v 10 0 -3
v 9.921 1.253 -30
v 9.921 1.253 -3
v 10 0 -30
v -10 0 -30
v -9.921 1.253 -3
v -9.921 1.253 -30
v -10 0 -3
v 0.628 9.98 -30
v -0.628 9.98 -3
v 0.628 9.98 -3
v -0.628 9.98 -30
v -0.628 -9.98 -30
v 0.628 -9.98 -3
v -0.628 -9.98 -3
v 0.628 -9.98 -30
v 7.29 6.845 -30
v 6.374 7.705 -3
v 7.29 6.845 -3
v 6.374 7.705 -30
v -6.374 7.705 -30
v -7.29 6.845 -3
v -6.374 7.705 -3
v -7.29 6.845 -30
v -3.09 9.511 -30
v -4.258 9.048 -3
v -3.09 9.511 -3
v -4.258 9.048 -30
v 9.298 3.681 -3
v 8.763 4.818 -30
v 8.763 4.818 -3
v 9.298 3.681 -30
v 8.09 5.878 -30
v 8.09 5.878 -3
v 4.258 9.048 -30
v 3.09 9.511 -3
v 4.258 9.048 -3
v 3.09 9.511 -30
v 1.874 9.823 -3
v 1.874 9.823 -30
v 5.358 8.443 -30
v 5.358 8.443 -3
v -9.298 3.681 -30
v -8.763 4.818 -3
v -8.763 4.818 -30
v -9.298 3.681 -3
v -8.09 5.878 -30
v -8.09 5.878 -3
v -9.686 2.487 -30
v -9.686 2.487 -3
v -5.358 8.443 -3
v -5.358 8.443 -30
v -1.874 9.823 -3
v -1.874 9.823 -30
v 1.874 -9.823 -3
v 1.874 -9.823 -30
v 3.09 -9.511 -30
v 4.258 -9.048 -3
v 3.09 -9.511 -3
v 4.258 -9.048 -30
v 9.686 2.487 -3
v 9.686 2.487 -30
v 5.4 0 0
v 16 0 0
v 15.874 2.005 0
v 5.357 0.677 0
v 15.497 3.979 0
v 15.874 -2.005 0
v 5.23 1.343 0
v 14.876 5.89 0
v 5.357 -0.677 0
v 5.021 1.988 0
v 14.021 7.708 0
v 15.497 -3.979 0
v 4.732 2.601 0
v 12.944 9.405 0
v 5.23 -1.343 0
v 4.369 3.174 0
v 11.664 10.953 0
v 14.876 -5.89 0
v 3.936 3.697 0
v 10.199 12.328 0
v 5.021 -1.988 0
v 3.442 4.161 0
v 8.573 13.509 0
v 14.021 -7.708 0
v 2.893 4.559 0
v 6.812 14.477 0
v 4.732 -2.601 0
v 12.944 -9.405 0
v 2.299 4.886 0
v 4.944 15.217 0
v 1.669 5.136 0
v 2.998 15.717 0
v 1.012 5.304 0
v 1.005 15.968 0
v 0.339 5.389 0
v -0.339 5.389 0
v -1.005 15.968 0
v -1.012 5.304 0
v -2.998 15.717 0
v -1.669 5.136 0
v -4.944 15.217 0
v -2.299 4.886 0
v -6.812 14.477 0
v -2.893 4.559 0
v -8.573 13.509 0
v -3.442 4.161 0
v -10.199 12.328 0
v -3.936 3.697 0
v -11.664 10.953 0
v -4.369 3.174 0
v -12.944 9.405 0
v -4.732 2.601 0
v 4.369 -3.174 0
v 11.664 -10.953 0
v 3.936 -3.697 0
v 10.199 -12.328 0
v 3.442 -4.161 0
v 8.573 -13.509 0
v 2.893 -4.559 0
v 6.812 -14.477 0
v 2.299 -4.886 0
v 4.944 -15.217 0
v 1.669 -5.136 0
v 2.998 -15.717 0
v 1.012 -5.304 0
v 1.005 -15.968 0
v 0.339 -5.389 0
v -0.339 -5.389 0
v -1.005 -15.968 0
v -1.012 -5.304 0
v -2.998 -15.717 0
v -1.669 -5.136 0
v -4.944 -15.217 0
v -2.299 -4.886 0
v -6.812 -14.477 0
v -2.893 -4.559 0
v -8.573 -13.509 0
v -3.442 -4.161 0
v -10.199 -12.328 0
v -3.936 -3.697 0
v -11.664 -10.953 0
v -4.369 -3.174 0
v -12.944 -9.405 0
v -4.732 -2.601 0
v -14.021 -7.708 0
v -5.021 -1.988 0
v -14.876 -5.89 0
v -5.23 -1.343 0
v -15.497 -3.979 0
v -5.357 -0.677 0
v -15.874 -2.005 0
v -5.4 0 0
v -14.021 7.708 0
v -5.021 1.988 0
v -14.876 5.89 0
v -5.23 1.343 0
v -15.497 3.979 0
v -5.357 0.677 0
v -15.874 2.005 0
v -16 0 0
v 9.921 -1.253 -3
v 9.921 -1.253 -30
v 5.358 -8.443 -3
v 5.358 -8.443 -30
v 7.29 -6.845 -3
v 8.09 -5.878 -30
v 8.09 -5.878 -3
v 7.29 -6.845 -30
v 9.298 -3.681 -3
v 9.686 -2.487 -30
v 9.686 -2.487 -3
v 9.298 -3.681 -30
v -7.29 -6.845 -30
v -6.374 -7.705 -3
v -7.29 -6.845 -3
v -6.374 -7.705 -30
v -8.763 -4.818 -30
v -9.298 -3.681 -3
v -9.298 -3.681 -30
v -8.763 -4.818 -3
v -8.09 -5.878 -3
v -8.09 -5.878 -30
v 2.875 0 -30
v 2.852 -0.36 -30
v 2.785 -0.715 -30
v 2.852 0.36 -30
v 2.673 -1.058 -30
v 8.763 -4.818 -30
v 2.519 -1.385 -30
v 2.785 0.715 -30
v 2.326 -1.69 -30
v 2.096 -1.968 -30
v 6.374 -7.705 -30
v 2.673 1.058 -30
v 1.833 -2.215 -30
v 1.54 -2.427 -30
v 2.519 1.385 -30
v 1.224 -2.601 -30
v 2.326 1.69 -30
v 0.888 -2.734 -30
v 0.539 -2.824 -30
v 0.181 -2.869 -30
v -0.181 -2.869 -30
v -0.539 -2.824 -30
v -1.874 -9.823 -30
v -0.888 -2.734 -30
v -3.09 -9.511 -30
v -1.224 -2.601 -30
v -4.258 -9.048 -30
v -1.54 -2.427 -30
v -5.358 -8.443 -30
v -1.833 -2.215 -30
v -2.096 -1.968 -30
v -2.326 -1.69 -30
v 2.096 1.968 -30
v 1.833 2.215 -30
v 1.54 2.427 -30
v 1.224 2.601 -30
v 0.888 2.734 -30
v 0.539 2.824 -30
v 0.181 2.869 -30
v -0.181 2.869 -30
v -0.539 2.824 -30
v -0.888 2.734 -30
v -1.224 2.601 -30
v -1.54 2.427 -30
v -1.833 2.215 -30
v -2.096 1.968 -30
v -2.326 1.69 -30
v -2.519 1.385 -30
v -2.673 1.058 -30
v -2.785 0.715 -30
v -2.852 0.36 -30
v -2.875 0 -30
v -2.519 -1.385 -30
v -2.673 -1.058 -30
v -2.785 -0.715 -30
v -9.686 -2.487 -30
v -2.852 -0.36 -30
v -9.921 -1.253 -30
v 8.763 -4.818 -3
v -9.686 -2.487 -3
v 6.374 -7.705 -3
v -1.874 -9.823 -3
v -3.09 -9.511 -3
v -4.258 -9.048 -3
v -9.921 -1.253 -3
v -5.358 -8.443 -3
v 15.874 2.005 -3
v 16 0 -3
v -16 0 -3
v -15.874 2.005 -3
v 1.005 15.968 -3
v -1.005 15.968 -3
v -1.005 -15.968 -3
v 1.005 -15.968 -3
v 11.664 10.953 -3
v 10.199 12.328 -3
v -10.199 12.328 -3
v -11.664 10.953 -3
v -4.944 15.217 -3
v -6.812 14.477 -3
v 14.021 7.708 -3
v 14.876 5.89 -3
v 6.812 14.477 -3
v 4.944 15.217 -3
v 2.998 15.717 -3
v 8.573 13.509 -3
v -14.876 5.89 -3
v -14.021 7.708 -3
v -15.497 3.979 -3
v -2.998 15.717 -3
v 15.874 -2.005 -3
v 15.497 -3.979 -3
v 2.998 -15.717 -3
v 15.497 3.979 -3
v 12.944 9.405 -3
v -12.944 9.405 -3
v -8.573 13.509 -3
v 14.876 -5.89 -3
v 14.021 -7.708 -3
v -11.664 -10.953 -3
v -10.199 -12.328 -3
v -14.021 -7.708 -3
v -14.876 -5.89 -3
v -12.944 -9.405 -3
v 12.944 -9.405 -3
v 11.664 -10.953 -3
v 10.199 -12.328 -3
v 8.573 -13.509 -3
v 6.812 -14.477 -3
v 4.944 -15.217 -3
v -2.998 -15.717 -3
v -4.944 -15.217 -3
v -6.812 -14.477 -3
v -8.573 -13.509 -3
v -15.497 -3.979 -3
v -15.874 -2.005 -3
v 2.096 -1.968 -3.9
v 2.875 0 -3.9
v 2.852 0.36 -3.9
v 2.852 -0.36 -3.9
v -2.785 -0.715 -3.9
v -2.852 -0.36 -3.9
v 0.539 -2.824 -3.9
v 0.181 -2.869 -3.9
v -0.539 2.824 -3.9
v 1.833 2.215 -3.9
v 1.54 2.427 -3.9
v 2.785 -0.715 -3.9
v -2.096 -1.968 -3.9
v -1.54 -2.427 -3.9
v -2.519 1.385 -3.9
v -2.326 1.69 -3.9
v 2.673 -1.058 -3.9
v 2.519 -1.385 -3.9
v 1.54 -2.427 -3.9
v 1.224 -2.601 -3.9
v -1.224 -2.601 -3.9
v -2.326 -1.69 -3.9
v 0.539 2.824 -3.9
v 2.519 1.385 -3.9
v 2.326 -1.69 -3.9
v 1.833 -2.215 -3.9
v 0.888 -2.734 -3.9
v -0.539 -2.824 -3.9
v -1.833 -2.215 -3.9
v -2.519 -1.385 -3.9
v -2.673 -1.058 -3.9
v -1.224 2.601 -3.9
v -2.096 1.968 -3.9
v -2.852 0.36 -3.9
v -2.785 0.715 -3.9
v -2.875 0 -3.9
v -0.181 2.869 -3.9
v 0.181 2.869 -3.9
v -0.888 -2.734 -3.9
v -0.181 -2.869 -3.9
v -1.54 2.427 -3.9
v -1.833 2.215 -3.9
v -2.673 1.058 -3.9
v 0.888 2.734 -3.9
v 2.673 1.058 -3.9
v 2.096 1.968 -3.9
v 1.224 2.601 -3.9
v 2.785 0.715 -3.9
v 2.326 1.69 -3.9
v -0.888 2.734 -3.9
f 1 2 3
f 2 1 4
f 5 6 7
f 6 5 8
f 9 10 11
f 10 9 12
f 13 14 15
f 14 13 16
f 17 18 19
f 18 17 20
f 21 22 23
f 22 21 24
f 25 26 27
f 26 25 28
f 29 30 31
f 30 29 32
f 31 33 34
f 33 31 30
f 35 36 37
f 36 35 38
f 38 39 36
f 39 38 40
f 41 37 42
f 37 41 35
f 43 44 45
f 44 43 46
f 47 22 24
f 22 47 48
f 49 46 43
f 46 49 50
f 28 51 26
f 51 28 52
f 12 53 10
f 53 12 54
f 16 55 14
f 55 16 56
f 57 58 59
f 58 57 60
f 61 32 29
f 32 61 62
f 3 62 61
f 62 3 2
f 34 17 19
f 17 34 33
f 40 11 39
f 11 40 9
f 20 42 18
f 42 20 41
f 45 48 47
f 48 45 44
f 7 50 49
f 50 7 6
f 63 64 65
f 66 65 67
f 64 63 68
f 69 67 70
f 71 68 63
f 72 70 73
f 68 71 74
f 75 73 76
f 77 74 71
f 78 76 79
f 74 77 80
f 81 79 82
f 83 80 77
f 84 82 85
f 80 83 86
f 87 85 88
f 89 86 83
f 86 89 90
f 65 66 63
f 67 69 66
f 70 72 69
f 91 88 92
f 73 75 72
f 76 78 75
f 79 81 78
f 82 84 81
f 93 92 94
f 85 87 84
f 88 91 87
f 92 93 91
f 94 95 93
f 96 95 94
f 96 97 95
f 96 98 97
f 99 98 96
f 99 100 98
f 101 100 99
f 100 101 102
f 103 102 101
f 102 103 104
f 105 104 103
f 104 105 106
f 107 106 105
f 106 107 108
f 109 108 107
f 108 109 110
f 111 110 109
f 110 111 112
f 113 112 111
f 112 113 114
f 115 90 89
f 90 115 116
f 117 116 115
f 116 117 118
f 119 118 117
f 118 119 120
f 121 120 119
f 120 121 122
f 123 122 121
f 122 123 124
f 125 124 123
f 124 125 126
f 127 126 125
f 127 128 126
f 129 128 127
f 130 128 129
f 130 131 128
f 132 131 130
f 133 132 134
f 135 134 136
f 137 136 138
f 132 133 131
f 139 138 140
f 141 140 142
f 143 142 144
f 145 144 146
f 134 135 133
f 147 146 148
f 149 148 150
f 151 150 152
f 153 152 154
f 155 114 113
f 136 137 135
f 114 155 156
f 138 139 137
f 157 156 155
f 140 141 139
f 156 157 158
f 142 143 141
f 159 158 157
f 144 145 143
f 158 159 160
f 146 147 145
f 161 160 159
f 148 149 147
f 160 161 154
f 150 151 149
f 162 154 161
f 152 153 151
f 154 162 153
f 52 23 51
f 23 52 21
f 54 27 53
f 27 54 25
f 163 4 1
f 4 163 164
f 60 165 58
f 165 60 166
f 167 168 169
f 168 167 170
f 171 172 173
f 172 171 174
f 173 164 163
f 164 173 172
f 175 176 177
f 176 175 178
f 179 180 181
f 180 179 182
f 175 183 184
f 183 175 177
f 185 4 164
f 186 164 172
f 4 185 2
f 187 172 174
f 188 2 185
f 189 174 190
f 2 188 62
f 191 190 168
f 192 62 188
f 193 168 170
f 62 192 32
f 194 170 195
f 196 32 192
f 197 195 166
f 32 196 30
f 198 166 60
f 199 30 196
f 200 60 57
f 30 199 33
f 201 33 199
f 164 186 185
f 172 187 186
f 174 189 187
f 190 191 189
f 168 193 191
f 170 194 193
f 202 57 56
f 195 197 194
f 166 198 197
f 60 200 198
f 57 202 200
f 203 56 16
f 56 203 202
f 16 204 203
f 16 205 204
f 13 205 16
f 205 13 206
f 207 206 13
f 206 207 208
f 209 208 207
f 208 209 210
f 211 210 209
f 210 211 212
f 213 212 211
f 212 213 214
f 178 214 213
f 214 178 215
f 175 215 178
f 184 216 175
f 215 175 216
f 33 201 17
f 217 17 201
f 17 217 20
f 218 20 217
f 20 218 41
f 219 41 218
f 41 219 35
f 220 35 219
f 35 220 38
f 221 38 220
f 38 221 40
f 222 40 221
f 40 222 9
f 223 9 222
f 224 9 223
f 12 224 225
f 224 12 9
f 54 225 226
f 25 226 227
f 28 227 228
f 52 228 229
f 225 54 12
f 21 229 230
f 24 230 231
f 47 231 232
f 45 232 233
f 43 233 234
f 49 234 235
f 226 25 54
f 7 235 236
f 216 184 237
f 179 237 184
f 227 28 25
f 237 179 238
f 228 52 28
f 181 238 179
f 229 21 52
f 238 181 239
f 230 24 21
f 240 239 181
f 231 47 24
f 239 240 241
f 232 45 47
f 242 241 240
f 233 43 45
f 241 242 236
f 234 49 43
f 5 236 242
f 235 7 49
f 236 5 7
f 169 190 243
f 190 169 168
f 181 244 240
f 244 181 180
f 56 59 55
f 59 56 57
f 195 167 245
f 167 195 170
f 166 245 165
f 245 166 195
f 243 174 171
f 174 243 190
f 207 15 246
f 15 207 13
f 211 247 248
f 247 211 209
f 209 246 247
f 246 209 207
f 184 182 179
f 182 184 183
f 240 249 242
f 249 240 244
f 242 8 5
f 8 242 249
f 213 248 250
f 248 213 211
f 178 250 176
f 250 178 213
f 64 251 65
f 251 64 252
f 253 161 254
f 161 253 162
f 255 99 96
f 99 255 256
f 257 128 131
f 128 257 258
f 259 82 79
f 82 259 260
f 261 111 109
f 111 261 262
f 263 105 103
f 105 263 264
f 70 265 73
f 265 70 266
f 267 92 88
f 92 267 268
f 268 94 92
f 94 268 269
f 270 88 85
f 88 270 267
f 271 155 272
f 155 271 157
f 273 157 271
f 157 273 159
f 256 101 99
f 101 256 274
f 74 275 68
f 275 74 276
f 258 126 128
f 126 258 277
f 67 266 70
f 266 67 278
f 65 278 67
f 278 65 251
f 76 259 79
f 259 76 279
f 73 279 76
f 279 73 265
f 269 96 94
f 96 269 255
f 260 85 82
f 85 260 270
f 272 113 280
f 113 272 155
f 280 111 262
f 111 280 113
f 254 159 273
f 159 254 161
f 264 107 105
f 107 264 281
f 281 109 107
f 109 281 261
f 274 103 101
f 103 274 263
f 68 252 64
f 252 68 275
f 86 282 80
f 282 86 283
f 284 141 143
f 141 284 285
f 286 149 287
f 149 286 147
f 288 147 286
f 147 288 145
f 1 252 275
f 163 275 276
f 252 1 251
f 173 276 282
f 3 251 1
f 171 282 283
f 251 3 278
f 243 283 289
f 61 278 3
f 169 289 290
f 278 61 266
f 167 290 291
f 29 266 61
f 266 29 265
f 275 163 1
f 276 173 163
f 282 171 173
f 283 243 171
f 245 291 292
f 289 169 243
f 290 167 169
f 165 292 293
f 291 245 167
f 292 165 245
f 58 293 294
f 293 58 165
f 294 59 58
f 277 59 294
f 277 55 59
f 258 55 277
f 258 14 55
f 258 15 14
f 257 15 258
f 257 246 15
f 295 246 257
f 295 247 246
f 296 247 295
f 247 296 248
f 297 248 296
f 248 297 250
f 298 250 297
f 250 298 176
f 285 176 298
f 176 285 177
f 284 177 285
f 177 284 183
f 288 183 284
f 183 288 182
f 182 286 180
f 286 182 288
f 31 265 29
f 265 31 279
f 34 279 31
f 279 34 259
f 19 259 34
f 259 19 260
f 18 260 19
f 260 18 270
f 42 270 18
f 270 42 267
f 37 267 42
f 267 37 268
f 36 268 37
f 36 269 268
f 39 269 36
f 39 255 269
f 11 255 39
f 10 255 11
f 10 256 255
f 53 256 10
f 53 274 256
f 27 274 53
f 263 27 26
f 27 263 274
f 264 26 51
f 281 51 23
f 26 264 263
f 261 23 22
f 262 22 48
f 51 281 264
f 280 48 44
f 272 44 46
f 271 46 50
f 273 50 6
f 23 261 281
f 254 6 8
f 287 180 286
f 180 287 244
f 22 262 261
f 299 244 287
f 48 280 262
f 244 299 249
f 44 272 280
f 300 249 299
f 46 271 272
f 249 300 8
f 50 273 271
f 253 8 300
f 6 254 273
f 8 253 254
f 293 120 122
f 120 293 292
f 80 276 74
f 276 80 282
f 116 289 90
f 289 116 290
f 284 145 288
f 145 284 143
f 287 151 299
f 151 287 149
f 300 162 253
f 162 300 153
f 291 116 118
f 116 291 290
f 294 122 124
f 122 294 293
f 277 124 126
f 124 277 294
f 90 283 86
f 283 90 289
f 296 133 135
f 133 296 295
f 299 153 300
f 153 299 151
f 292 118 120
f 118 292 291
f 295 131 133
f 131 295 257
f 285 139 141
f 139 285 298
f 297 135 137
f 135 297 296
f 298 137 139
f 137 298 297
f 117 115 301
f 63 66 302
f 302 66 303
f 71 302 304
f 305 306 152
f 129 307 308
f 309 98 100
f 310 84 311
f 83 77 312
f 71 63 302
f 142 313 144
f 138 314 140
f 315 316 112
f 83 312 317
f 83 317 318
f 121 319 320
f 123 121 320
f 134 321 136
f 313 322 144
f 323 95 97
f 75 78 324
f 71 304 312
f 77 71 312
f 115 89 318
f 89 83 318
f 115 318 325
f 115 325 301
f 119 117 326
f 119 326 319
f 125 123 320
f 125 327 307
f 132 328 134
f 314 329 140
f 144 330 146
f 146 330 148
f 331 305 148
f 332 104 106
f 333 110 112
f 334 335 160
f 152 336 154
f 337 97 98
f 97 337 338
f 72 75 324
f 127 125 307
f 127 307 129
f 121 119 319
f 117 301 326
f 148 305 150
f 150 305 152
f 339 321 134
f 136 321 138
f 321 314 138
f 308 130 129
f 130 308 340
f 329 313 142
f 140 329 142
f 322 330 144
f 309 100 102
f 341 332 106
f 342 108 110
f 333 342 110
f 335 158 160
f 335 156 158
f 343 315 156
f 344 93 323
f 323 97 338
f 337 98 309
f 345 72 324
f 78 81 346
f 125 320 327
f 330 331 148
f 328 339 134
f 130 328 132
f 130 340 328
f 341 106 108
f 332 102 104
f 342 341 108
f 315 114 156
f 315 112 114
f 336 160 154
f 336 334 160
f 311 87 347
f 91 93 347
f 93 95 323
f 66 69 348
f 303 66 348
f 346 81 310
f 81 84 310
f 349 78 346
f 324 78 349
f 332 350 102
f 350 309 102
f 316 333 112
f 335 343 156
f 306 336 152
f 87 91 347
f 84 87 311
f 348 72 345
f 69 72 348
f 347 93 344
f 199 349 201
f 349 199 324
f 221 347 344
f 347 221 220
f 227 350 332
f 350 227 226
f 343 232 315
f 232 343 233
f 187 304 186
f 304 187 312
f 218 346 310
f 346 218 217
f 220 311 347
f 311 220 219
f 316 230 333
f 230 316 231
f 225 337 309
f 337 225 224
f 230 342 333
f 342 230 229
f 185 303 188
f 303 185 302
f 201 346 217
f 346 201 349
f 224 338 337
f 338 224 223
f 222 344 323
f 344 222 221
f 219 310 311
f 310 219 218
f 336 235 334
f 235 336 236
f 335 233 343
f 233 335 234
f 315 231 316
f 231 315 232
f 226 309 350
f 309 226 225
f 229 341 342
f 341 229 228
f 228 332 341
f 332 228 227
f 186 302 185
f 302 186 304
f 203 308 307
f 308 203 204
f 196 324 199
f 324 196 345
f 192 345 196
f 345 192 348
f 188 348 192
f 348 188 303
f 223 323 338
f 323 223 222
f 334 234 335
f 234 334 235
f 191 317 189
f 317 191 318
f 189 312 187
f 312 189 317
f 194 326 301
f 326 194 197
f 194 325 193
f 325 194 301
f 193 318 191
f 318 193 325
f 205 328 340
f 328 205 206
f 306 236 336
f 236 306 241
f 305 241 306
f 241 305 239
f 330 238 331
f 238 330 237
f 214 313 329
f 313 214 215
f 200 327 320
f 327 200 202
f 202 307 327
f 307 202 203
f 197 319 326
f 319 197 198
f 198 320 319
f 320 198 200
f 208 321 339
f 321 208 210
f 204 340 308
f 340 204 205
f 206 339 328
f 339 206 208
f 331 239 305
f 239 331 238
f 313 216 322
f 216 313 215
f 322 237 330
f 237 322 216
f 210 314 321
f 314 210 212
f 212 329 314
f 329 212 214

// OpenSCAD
$fn = 50;


difference() {
	union() {
		translate(v = [0, 0, -30.0000000000]) {
			cylinder(h = 30, r = 10.0000000000);
		}
		translate(v = [0, 0, -3.0000000000]) {
			cylinder(h = 3, r = 16.0000000000);
		}
	}
	union() {
		translate(v = [0, 0, 0]) {
			rotate(a = [0, 0, 0]) {
				difference() {
					union() {
						#translate(v = [0, 0, -30.0000000000]) {
							cylinder(h = 30, r = 2.6000000000);
						}
						#translate(v = [0, 0, -3.9000000000]) {
							cylinder(h = 3.9000000000, r = 10.0000000000, r1 = 2.8750000000, r2 = 5.4000000000);
						}
						#translate(v = [0, 0, -30.0000000000]) {
							cylinder(h = 30, r = 2.8750000000);
						}
						#translate(v = [0, 0, -30.0000000000]) {
							cylinder(h = 30, r = 2.6000000000);
						}
					}
					union();
				}
			}
		}
	}
}
